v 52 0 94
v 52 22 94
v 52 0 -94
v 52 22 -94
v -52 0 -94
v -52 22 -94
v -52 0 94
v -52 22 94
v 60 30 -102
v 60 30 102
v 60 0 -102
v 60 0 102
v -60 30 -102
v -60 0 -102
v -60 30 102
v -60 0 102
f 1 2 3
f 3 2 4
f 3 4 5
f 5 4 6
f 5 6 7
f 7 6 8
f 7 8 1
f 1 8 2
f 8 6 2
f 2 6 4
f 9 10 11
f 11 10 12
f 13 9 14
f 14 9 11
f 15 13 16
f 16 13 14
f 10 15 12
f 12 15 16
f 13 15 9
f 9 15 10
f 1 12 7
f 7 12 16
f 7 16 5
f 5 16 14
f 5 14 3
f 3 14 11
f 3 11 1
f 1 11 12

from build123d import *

# Parameters (mm, degrees)
SKETCH1_W           = 120
SKETCH1_H           = 204
BOSS_EXTRUDE1_DEPTH = 30
SHELL1_T            = 8
SKETCH2_W           = 104
SKETCH2_H           = 188
CUT_EXTRUDE1_DEPTH  = 18


with BuildPart() as part:
    # Sketch1 → Boss-Extrude1 (new body)
    with BuildSketch(Plane(origin=(0, 0, 0), x_dir=(1, 0, 0), z_dir=(0, 1, 0))):
        Rectangle(SKETCH1_W, SKETCH1_H)
    extrude(amount=BOSS_EXTRUDE1_DEPTH)

    # Shell1 (no face opened: a closed hollow body)
    add(offset(amount=-SHELL1_T, mode=Mode.PRIVATE), mode=Mode.SUBTRACT)

    # Sketch2 → Cut-Extrude1 (cut)
    with BuildSketch(Plane.XZ):
        Rectangle(SKETCH2_W, SKETCH2_H)
    extrude(amount=-CUT_EXTRUDE1_DEPTH, mode=Mode.SUBTRACT)


solid = part.part
